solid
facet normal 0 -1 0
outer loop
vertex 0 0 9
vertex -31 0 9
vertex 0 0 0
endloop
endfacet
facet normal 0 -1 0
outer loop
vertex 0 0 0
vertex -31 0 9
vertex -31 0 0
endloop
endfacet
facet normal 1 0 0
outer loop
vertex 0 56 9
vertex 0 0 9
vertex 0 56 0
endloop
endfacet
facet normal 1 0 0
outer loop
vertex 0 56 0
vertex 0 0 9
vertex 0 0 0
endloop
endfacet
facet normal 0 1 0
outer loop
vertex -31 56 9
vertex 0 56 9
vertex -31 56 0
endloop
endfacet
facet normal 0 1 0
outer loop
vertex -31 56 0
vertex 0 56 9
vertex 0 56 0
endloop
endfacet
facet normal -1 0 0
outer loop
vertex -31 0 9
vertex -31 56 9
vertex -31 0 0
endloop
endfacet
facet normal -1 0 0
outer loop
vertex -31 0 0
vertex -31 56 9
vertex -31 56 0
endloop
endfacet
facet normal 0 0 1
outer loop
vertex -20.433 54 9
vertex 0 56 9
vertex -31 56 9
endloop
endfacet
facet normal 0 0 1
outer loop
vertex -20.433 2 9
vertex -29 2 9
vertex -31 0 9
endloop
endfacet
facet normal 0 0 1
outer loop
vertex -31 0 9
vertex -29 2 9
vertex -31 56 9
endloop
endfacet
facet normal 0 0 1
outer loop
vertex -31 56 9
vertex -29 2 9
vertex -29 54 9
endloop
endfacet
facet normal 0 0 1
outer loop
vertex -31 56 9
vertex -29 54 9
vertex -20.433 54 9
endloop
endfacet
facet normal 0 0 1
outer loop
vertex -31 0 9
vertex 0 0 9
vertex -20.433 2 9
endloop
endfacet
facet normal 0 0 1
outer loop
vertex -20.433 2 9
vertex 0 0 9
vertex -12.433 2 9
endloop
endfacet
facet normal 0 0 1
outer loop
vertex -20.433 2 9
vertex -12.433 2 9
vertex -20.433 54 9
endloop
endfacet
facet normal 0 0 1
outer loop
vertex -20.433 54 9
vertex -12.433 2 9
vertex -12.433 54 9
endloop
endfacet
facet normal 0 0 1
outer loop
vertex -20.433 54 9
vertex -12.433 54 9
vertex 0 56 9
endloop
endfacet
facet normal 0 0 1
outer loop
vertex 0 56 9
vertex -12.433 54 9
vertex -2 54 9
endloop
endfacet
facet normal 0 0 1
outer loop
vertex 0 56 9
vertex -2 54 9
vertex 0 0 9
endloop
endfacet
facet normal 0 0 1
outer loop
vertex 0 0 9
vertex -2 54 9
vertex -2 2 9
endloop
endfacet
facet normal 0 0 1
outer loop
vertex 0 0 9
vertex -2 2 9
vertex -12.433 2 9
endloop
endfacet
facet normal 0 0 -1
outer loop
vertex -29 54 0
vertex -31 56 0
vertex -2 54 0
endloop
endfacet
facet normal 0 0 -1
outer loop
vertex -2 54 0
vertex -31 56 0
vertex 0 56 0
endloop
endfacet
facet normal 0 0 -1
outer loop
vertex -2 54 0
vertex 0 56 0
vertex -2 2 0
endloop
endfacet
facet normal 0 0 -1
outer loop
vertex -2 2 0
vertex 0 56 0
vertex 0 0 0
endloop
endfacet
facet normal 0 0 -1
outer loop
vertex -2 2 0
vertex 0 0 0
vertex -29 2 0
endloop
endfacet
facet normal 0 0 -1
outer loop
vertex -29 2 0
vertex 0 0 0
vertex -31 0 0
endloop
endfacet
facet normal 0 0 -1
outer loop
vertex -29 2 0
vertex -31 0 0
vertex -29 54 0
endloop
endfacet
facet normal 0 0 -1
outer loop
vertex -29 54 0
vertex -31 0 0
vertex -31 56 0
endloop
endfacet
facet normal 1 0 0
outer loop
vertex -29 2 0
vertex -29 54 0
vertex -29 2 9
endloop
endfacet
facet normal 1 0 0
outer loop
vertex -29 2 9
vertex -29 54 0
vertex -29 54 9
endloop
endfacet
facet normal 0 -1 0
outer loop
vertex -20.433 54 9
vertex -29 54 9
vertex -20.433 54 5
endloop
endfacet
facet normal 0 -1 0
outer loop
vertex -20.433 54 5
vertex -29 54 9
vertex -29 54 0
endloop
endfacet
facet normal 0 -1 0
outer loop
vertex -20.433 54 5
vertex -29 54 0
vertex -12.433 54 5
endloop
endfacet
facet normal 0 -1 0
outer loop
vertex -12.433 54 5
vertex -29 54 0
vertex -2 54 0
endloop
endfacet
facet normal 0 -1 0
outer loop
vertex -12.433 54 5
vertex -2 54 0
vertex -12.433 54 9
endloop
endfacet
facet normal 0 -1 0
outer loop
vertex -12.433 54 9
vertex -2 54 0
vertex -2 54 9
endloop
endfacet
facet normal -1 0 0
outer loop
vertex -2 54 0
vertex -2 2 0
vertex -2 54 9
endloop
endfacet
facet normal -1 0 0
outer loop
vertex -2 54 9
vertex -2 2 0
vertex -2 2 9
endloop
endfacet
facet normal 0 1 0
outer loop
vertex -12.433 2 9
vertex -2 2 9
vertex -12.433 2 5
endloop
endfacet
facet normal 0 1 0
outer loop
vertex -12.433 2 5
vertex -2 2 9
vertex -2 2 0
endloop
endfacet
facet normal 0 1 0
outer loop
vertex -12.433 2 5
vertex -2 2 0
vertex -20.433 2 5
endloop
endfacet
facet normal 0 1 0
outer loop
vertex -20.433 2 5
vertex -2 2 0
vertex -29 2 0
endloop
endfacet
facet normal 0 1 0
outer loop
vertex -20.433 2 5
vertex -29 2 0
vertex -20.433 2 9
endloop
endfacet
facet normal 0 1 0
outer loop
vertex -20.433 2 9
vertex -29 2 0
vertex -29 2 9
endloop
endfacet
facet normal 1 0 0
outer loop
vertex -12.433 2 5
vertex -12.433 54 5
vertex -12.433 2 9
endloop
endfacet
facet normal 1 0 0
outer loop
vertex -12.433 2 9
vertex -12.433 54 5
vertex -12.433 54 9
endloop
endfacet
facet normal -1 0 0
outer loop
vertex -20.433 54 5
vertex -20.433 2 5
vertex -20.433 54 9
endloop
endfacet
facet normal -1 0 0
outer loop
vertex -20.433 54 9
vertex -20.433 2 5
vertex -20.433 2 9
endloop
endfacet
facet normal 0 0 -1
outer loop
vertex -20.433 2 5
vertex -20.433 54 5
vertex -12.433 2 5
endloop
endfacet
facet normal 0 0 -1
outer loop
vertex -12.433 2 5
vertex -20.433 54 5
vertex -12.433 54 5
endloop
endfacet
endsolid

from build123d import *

# Parameters (mm, degrees)
SKETCH1_W           = 56
SKETCH1_H           = 31
BOSS_EXTRUDE1_DEPTH = 9
SKETCH2_W           = 27
SKETCH2_H           = 52
CUT_EXTRUDE1_DEPTH  = 65.637450445
SKETCH3_W           = 8
SKETCH3_H           = 52
BOSS_EXTRUDE2_DEPTH = 4


with BuildPart() as part:
    # Sketch1 → Boss-Extrude1 (new body)
    with BuildSketch(Plane(origin=(0, 0, 0), x_dir=(0, 1, 0), z_dir=(0, 0, 1))):
        with Locations((28, 15.5)):
            Rectangle(SKETCH1_W, SKETCH1_H)
    extrude(amount=BOSS_EXTRUDE1_DEPTH)

    # Sketch2 → Cut-Extrude1 (cut, through all)
    with BuildSketch(Plane.XY.offset(9)):
        with Locations((-15.5, 28)):
            Rectangle(SKETCH2_W, SKETCH2_H)
    extrude(amount=-CUT_EXTRUDE1_DEPTH, mode=Mode.SUBTRACT)

    # Sketch3 → Boss-Extrude2 (add)
    with BuildSketch(Plane.XY.offset(9)):
        with Locations((-16.433368265, 28)):
            Rectangle(SKETCH3_W, SKETCH3_H)
    extrude(amount=-BOSS_EXTRUDE2_DEPTH)


solid = part.part
